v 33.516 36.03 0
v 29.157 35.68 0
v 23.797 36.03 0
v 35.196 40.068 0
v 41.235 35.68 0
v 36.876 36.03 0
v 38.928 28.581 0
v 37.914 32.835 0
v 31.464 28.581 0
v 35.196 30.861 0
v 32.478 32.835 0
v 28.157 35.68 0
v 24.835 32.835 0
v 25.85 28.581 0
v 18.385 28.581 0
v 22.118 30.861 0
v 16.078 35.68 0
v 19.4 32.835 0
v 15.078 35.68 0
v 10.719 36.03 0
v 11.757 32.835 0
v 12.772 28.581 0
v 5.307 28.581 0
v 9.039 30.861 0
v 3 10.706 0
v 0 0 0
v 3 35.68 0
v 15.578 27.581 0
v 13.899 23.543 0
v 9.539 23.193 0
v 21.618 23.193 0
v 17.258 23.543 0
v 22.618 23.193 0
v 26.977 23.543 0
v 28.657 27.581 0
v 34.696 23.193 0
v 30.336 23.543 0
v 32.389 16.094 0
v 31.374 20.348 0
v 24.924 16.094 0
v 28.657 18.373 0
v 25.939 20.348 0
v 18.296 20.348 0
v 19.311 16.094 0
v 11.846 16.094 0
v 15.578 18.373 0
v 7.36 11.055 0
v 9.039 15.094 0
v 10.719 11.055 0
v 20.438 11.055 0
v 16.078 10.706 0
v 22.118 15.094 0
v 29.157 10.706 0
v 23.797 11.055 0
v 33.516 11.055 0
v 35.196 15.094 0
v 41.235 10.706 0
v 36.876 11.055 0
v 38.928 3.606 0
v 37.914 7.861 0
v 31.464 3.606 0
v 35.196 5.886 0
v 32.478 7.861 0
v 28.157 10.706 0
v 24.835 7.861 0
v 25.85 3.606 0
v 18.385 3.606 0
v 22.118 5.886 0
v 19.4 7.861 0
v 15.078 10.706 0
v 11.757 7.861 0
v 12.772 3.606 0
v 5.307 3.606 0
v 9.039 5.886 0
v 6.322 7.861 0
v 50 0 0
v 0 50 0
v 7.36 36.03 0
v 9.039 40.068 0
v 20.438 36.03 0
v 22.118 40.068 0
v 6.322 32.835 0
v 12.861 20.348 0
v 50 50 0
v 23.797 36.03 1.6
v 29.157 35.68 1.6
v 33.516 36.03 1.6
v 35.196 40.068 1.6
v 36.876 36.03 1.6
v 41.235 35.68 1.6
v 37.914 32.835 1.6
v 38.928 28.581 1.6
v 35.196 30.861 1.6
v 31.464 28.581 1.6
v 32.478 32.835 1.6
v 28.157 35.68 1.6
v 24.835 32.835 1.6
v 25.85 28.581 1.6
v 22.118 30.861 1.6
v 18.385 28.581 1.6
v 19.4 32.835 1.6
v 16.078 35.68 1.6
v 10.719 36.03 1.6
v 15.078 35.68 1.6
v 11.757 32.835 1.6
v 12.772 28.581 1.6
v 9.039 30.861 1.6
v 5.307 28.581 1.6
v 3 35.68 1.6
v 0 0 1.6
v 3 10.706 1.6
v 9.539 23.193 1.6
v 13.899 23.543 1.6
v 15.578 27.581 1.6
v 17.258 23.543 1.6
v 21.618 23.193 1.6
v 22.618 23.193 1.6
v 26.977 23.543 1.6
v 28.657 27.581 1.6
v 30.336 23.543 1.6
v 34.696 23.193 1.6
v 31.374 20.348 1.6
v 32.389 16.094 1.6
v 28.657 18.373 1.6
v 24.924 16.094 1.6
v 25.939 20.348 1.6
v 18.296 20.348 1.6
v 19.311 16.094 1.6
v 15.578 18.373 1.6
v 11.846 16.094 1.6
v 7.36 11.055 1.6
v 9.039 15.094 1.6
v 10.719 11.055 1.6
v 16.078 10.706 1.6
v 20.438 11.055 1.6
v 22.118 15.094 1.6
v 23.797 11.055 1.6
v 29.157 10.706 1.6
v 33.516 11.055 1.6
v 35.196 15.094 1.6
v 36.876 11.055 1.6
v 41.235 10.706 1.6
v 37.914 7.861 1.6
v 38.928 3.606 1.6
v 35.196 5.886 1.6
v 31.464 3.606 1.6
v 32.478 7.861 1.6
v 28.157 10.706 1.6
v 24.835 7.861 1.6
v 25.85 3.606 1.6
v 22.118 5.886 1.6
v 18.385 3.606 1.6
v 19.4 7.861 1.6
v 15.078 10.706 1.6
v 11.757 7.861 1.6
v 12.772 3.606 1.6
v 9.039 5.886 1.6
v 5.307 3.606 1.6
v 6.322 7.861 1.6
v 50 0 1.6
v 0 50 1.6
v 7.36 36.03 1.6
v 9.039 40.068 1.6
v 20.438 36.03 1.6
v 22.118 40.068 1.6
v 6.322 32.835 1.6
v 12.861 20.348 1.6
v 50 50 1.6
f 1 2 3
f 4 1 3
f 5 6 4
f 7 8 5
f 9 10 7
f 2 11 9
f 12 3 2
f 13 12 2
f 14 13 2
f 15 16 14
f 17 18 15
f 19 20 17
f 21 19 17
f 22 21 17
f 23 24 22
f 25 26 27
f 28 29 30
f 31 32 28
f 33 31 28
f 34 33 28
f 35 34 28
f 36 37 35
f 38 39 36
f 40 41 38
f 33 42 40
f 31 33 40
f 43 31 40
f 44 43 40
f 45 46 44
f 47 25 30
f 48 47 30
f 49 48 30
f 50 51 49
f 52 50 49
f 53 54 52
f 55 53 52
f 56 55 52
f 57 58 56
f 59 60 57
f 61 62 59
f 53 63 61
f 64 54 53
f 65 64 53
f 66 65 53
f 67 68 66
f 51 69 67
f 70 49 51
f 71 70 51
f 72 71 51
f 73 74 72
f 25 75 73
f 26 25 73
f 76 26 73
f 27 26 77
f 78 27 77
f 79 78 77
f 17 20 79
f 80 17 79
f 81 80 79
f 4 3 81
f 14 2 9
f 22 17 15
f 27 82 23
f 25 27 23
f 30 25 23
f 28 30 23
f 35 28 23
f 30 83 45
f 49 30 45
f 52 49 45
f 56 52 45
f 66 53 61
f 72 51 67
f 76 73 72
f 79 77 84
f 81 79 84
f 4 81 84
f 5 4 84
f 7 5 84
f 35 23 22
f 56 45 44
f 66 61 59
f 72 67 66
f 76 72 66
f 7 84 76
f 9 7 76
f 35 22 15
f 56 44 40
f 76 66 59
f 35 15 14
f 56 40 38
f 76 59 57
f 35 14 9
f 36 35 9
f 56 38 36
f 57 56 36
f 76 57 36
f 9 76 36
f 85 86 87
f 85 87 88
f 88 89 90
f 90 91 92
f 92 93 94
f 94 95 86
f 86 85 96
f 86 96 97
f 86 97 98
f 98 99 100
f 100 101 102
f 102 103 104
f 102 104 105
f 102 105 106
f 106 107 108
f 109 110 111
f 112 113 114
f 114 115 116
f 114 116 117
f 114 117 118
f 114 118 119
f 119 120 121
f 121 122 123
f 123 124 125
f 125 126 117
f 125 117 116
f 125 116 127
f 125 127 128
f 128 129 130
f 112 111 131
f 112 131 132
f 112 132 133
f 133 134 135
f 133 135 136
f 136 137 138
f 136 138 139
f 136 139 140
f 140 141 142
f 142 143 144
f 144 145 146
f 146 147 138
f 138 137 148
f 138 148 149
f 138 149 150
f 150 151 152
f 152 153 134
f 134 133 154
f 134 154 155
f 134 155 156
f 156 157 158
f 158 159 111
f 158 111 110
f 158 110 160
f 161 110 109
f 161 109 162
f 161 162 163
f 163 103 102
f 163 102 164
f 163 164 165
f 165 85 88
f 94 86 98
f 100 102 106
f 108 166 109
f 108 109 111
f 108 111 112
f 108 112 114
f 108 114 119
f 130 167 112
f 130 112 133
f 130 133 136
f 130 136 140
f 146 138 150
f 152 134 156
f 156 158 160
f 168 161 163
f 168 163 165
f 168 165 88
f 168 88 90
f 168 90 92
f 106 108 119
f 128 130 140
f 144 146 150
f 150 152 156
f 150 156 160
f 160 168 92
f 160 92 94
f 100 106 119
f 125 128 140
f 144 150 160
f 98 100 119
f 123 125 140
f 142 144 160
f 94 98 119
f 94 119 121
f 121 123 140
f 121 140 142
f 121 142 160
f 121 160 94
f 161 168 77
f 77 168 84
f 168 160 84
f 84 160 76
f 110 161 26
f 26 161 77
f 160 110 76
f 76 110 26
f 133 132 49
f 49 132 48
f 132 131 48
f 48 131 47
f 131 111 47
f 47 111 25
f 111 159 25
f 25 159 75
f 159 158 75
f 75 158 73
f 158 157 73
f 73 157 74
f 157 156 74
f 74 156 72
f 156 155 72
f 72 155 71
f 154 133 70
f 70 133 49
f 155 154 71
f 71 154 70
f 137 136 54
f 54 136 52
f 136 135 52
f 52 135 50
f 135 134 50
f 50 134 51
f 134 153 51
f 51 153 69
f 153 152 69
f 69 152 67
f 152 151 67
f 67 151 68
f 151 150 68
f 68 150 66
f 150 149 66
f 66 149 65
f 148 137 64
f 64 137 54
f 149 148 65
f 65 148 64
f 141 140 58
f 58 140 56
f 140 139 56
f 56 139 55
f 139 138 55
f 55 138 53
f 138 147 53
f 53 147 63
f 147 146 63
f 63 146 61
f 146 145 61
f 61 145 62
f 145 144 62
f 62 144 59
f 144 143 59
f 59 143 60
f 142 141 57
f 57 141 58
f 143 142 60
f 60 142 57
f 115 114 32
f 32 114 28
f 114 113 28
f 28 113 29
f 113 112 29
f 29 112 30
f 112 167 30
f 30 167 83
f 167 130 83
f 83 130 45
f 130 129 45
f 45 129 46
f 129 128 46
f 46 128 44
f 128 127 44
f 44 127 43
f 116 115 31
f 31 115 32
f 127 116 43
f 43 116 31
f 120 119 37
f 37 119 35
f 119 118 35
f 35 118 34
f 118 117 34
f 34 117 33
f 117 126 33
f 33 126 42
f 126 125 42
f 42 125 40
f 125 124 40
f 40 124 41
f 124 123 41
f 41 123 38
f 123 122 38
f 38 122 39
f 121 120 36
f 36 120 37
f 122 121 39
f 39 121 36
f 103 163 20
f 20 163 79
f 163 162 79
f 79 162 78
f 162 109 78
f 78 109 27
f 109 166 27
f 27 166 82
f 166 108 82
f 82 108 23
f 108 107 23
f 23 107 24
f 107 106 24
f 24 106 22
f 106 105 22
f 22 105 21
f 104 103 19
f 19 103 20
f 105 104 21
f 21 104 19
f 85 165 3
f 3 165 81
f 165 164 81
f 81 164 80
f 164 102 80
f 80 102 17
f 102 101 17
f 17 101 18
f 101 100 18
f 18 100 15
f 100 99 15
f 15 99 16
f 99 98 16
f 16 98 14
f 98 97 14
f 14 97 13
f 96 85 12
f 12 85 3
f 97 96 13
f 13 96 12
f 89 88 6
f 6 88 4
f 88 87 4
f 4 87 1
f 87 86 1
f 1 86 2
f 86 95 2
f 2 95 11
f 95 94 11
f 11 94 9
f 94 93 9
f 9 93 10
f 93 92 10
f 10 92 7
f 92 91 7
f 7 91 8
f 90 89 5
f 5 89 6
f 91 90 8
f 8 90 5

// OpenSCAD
// STAR-1/2: 1/2 in star (shape punch, realisation punched) NOMINAL size, measure before use
// hole: star {"outer_d": 12.7}; inscribed 5.703 mm; 8 holes; open area 0.22; spec hash ccf0825ecd47c79e
plate = 50.0; thickness = 1.6;
hole = [[0.0000, 6.3500], [-1.6796, 2.3118], [-6.0392, 1.9623], [-2.7176, -0.8830], [-3.7324, -5.1373], [-0.0000, -2.8575], [3.7324, -5.1373], [2.7176, -0.8830], [6.0392, 1.9623], [1.6796, 2.3118]];
centres = [[9.0392, 8.7436], [22.1176, 8.7436], [35.196, 8.7436], [15.5784, 21.2309], [28.6568, 21.2309], [9.0392, 33.7181], [22.1176, 33.7181], [35.196, 33.7181]];
difference() {
  cube([plate, plate, thickness]);
  for (c = centres) translate([c[0], c[1], -1]) linear_extrude(thickness + 2) polygon(hole);
}
